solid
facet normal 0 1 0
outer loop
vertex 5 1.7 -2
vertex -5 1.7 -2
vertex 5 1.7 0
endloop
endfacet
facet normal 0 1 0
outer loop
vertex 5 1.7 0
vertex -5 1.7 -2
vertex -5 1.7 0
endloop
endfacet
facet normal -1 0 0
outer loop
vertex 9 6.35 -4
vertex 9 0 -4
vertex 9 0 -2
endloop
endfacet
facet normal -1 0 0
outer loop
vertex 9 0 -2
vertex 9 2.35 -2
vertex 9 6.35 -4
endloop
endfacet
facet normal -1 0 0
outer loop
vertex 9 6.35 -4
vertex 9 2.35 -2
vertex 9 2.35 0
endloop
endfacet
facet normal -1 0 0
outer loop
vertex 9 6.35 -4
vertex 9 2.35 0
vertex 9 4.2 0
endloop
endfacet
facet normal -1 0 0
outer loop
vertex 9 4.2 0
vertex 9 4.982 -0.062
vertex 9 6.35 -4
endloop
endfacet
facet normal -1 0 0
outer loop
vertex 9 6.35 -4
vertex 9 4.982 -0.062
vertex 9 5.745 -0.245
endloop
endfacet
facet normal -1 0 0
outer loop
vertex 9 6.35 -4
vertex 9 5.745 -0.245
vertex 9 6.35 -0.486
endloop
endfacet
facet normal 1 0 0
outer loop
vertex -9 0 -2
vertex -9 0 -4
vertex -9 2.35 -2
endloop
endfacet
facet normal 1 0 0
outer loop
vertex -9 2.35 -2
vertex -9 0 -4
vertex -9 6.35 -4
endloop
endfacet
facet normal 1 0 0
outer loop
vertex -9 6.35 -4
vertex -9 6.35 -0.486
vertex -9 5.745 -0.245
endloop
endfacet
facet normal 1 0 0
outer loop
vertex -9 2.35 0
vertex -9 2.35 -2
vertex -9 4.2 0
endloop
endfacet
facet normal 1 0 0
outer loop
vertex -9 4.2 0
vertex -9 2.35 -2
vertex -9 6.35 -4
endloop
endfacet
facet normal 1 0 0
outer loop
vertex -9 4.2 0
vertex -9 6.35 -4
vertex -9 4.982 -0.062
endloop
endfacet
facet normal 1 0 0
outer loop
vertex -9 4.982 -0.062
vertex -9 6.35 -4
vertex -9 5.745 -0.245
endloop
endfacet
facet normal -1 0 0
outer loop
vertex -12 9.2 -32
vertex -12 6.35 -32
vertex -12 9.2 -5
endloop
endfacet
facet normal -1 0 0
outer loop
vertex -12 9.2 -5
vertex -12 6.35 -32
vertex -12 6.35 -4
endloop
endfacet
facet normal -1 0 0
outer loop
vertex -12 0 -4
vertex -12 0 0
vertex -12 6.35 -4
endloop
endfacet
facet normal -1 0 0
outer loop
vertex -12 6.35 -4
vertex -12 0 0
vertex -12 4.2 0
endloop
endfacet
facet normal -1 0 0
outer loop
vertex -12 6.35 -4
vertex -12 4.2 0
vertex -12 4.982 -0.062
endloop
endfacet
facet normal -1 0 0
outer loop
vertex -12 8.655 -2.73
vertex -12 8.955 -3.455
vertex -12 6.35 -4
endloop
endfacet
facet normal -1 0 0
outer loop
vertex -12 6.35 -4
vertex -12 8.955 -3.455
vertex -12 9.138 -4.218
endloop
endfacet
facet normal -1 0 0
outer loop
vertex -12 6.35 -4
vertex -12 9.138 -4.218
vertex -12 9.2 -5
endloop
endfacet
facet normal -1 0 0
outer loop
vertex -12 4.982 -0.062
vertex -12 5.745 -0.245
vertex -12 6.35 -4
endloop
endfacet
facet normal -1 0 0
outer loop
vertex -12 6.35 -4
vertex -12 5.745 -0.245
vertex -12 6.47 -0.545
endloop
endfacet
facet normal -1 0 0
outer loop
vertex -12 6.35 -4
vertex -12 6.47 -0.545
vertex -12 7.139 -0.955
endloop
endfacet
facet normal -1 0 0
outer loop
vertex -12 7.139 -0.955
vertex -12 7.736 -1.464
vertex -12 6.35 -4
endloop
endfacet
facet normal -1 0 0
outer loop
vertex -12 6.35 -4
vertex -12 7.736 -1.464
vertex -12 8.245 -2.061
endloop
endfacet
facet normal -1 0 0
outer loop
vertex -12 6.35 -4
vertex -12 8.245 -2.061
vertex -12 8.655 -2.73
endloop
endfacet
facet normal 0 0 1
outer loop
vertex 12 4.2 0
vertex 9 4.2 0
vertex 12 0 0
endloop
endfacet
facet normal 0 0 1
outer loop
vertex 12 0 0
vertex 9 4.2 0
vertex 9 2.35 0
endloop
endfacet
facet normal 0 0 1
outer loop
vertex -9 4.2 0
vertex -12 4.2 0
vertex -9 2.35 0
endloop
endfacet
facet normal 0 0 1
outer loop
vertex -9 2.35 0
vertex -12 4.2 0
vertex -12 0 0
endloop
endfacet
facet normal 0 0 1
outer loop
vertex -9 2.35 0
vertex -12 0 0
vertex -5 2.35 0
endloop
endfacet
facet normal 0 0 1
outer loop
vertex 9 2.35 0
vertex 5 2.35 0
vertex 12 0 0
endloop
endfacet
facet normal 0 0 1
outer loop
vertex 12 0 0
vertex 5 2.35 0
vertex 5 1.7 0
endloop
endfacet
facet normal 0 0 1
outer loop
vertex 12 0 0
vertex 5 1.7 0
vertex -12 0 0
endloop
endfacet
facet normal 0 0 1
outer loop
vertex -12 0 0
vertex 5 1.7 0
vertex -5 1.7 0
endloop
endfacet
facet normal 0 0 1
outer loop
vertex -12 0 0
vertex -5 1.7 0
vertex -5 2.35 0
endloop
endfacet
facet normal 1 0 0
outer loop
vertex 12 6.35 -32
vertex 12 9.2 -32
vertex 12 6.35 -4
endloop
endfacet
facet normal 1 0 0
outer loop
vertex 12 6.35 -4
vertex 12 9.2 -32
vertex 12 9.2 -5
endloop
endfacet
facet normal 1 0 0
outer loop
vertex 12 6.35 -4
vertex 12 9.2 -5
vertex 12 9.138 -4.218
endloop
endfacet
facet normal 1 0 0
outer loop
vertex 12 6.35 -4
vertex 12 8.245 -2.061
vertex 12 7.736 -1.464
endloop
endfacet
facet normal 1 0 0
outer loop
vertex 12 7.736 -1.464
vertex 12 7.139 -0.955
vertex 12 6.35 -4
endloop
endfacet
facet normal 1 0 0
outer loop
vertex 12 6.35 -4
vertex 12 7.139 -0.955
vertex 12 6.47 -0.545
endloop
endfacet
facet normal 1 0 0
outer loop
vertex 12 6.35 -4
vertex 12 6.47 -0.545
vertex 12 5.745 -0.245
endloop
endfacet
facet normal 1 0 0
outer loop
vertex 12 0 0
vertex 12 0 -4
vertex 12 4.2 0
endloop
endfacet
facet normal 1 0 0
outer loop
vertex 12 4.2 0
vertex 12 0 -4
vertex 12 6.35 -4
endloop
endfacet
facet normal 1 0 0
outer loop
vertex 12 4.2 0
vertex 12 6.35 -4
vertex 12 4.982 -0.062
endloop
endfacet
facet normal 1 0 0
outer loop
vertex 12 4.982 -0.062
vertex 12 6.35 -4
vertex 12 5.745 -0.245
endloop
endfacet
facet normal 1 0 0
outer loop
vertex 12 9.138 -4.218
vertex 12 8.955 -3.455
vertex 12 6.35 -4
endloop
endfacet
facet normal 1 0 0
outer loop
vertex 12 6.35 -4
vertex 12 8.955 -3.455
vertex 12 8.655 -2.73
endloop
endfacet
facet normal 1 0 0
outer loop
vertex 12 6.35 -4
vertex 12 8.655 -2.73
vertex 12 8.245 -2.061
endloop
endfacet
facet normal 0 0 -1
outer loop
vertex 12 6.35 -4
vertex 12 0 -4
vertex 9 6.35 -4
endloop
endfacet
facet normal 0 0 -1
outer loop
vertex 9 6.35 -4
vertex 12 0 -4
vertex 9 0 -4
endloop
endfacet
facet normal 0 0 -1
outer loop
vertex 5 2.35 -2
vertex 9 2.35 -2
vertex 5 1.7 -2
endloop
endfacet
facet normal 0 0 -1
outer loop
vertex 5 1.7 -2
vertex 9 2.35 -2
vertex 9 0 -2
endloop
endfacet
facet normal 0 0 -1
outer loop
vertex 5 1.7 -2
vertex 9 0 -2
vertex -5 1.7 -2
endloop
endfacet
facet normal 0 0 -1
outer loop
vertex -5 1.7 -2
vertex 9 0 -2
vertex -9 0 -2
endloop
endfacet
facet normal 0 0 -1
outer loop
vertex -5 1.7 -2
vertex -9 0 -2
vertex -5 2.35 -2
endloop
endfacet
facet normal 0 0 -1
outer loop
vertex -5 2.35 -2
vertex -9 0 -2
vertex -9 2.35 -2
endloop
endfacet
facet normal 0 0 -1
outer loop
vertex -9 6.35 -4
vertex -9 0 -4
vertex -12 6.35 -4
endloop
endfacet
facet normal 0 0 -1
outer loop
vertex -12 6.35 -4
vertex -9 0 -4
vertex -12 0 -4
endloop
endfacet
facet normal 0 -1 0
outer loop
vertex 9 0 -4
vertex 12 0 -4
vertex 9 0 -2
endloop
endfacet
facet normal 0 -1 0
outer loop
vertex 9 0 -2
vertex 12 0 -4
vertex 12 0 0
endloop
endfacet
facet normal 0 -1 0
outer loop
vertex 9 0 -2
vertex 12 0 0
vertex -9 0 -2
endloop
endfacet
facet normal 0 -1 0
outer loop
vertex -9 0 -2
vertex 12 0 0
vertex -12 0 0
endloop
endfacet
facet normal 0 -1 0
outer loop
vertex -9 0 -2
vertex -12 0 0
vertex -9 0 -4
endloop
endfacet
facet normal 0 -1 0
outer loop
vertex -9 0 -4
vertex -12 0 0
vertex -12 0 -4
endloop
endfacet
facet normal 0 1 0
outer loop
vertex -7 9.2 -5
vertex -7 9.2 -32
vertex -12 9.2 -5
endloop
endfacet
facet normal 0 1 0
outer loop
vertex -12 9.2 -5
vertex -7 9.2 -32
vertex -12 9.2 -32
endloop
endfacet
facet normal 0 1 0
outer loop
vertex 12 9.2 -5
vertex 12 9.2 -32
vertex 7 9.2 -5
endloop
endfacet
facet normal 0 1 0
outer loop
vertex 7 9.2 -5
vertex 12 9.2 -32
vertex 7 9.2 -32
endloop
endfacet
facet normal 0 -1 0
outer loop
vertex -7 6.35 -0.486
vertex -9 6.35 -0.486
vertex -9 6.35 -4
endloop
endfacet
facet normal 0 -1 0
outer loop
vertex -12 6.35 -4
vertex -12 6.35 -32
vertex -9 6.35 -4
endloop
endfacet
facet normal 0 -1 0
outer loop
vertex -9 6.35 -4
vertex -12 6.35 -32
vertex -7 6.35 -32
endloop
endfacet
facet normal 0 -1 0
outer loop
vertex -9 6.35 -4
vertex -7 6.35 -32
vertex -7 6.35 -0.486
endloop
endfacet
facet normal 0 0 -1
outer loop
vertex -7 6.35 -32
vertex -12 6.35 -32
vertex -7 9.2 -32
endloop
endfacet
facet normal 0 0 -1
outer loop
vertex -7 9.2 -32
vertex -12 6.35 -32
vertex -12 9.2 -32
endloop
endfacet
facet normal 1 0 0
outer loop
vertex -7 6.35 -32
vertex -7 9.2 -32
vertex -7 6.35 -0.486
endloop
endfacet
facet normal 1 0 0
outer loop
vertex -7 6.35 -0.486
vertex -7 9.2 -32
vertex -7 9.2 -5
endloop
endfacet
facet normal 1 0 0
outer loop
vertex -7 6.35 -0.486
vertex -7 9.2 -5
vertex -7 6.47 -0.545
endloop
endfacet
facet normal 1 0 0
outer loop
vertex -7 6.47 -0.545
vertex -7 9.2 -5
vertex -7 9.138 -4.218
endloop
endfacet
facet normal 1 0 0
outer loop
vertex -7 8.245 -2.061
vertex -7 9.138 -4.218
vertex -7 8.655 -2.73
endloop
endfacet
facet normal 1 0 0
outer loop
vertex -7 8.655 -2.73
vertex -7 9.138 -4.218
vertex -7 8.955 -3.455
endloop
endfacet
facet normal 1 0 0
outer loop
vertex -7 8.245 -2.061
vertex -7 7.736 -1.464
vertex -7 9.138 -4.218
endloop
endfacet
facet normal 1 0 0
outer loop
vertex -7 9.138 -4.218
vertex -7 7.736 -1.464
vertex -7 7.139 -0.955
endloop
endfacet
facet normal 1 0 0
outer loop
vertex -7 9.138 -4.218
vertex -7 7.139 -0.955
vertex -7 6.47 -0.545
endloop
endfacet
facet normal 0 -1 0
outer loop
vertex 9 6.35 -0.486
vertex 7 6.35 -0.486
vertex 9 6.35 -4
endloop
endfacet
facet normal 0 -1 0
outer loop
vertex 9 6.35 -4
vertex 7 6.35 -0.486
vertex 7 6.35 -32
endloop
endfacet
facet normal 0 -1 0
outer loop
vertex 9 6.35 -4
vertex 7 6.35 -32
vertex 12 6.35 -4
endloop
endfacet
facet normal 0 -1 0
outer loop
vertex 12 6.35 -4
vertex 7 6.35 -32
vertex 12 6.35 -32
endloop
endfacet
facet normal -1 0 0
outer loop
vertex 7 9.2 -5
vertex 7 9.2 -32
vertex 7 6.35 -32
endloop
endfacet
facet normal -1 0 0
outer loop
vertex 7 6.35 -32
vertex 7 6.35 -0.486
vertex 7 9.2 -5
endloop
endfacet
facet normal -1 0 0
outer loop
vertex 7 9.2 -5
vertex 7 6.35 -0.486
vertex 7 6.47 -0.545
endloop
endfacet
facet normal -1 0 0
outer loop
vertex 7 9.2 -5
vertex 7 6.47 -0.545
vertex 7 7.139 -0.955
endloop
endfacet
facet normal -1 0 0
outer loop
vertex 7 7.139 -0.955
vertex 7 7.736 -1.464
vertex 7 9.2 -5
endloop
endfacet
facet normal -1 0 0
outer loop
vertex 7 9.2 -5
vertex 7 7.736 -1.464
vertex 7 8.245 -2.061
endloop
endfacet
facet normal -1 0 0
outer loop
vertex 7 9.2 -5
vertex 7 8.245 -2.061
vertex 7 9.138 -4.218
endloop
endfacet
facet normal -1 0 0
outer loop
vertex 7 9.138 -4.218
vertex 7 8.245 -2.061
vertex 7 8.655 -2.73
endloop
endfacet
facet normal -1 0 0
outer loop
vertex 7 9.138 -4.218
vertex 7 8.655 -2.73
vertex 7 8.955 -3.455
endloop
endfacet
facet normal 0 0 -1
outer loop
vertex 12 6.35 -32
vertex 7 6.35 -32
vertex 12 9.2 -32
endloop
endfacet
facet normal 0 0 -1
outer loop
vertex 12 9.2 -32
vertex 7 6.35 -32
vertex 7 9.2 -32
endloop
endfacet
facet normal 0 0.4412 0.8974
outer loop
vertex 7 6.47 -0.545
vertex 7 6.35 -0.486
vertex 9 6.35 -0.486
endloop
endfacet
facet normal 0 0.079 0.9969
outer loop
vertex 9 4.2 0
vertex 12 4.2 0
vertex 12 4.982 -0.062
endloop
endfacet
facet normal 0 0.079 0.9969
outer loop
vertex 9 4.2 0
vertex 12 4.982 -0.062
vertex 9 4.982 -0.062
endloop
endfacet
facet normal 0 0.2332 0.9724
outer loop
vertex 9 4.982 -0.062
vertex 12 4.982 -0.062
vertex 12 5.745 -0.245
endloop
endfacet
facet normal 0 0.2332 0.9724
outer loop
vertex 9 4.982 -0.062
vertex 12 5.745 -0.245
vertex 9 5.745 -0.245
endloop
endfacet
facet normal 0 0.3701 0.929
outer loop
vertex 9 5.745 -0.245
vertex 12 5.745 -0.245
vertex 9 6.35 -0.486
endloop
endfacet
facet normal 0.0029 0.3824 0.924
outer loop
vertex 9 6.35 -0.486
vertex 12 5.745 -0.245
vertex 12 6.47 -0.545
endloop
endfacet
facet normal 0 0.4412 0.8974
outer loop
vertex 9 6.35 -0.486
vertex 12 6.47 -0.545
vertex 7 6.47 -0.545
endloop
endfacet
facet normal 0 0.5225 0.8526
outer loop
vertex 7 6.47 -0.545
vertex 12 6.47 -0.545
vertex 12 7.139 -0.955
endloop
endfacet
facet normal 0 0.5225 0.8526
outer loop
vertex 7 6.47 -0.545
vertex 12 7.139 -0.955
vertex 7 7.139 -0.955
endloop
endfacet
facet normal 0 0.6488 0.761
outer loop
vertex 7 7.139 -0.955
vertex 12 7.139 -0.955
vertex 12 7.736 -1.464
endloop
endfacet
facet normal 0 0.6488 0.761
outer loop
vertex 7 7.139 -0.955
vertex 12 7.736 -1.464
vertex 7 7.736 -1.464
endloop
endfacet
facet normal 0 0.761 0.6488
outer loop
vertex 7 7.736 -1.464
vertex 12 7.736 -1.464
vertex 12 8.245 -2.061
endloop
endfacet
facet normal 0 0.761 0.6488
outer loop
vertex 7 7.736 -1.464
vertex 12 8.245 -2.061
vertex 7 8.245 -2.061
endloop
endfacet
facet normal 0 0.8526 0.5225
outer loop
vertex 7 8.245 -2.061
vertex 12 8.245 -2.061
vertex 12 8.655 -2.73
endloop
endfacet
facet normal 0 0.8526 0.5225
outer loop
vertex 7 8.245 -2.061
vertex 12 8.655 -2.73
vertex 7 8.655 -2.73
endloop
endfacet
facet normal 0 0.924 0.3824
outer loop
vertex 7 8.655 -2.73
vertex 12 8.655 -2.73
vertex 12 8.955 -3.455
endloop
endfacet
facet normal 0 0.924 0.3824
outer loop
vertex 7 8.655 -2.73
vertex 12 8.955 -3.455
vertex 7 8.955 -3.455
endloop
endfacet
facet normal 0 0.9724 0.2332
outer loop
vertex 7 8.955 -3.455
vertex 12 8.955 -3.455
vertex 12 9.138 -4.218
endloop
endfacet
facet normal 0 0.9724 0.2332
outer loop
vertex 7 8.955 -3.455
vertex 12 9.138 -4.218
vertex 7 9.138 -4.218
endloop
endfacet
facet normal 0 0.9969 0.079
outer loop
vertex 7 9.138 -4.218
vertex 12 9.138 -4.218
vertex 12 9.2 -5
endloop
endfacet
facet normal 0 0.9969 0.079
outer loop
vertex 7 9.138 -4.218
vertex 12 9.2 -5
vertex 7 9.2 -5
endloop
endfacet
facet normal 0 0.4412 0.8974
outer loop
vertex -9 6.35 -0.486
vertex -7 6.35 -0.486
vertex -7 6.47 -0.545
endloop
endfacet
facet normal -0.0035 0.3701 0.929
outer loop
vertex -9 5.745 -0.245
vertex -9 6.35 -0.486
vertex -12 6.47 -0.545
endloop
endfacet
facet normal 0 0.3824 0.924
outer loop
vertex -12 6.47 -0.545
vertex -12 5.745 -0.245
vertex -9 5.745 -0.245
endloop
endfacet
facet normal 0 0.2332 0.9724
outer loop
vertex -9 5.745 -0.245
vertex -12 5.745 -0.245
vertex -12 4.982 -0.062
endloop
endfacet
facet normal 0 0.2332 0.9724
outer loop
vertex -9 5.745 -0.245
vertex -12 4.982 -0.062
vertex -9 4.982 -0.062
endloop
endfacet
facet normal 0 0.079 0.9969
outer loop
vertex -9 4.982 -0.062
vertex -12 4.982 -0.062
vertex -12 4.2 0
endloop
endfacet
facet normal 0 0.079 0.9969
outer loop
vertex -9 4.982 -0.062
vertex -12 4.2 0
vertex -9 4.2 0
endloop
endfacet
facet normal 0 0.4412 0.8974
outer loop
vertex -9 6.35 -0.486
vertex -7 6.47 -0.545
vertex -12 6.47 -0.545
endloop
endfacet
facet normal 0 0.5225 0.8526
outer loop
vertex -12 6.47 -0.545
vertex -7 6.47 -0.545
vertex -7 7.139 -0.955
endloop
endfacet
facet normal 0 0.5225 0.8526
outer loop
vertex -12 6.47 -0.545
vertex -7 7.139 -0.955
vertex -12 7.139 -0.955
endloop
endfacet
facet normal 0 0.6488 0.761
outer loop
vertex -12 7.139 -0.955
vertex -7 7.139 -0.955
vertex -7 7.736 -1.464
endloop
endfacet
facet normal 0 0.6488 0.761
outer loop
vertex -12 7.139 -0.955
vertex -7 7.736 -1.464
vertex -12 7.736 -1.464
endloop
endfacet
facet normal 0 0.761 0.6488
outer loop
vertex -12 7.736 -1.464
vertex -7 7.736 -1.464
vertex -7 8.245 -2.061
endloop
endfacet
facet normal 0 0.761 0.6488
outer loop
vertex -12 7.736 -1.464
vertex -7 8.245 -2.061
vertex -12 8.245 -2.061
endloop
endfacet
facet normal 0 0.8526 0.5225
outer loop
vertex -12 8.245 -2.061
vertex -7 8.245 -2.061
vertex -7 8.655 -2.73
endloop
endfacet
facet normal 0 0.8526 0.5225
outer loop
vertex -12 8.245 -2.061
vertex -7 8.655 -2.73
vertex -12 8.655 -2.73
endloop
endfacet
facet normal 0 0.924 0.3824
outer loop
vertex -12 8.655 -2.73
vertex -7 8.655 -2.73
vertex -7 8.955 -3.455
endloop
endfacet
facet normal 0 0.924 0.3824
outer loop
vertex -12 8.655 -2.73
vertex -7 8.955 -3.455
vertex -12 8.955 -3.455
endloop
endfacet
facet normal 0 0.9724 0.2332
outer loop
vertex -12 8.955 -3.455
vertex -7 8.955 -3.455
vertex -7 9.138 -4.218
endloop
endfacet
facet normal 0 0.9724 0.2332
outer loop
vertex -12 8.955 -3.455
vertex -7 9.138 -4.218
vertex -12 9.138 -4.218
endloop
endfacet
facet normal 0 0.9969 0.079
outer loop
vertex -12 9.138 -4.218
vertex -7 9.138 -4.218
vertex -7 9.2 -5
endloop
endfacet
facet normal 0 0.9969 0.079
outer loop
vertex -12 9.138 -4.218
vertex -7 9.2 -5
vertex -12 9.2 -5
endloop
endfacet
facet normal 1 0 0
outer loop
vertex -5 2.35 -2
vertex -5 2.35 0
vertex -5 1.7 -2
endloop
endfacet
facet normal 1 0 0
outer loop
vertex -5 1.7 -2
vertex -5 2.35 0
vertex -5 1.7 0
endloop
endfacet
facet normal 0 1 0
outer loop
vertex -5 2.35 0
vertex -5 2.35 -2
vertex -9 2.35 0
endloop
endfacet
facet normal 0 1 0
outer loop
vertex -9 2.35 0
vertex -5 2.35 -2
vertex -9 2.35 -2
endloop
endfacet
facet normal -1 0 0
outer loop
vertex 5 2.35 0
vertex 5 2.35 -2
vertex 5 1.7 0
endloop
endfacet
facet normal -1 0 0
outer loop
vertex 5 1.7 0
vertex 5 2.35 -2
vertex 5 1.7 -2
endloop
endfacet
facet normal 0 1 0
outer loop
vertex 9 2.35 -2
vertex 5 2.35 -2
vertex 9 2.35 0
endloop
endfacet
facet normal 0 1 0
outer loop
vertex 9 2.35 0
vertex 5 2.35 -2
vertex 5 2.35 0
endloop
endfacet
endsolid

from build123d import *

# Parameters (mm, degrees)
BOSS_EXTRU_1_DEPTH = 1.7
ESQUISSE2_W        = 3
ESQUISSE2_H        = 4
BOSS_EXTRU_2_DEPTH = 7.5
ESQUISSE3_W        = 5
ESQUISSE3_H        = 32
BOSS_EXTRU_3_DEPTH = 2.85
CONG_1_R           = 5
ESQUISSE4_W        = 4
ESQUISSE4_H        = 2
BOSS_EXTRU_4_DEPTH = 0.65


with BuildPart() as part:
    # Esquisse1 → Boss.-Extru.1 (new body)
    with BuildSketch(Plane(origin=(0, 0, 0), x_dir=(1, 0, 0), z_dir=(0, 1, 0))):
        Polygon((-12, 4), (-9, 4), (-9, 2), (9, 2), (9, 4), (12, 4), (12, 0), (-12, 0), align=None)
    extrude(amount=BOSS_EXTRU_1_DEPTH)

    # Esquisse2 → Boss.-Extru.2 (add)
    with BuildSketch(Plane(origin=(0, 1.7, 0), x_dir=(1, 0, 0), z_dir=(0, 1, 0))):
        with Locations((-10.5, 2)):
            Rectangle(ESQUISSE2_W, ESQUISSE2_H)
        with Locations((10.5, 2)):
            Rectangle(ESQUISSE2_W, ESQUISSE2_H)
    extrude(amount=BOSS_EXTRU_2_DEPTH)

    # Esquisse3 → Boss.-Extru.3 (add)
    with BuildSketch(Plane(origin=(0, 9.2, 0), x_dir=(1, 0, 0), z_dir=(0, 1, 0))):
        with Locations((-9.5, 16)):
            Rectangle(ESQUISSE3_W, ESQUISSE3_H)
        with Locations((9.5, 16)):
            Rectangle(ESQUISSE3_W, ESQUISSE3_H)
    extrude(amount=-BOSS_EXTRU_3_DEPTH)

    # Congé1
    cong_1_edges = [part.edges().sort_by_distance(p)[0] for p in [
        (9.5, 9.2, 0),
        (-9.5, 9.2, 0),
    ]]
    fillet(cong_1_edges, radius=CONG_1_R)

    # Esquisse4 → Boss.-Extru.4 (add)
    with BuildSketch(Plane(origin=(0, 1.7, 0), x_dir=(1, 0, 0), z_dir=(0, 1, 0))):
        with Locations((-7, 1)):
            Rectangle(ESQUISSE4_W, ESQUISSE4_H)
        with Locations((7, 1)):
            Rectangle(ESQUISSE4_W, ESQUISSE4_H)
    extrude(amount=BOSS_EXTRU_4_DEPTH)


solid = part.part
